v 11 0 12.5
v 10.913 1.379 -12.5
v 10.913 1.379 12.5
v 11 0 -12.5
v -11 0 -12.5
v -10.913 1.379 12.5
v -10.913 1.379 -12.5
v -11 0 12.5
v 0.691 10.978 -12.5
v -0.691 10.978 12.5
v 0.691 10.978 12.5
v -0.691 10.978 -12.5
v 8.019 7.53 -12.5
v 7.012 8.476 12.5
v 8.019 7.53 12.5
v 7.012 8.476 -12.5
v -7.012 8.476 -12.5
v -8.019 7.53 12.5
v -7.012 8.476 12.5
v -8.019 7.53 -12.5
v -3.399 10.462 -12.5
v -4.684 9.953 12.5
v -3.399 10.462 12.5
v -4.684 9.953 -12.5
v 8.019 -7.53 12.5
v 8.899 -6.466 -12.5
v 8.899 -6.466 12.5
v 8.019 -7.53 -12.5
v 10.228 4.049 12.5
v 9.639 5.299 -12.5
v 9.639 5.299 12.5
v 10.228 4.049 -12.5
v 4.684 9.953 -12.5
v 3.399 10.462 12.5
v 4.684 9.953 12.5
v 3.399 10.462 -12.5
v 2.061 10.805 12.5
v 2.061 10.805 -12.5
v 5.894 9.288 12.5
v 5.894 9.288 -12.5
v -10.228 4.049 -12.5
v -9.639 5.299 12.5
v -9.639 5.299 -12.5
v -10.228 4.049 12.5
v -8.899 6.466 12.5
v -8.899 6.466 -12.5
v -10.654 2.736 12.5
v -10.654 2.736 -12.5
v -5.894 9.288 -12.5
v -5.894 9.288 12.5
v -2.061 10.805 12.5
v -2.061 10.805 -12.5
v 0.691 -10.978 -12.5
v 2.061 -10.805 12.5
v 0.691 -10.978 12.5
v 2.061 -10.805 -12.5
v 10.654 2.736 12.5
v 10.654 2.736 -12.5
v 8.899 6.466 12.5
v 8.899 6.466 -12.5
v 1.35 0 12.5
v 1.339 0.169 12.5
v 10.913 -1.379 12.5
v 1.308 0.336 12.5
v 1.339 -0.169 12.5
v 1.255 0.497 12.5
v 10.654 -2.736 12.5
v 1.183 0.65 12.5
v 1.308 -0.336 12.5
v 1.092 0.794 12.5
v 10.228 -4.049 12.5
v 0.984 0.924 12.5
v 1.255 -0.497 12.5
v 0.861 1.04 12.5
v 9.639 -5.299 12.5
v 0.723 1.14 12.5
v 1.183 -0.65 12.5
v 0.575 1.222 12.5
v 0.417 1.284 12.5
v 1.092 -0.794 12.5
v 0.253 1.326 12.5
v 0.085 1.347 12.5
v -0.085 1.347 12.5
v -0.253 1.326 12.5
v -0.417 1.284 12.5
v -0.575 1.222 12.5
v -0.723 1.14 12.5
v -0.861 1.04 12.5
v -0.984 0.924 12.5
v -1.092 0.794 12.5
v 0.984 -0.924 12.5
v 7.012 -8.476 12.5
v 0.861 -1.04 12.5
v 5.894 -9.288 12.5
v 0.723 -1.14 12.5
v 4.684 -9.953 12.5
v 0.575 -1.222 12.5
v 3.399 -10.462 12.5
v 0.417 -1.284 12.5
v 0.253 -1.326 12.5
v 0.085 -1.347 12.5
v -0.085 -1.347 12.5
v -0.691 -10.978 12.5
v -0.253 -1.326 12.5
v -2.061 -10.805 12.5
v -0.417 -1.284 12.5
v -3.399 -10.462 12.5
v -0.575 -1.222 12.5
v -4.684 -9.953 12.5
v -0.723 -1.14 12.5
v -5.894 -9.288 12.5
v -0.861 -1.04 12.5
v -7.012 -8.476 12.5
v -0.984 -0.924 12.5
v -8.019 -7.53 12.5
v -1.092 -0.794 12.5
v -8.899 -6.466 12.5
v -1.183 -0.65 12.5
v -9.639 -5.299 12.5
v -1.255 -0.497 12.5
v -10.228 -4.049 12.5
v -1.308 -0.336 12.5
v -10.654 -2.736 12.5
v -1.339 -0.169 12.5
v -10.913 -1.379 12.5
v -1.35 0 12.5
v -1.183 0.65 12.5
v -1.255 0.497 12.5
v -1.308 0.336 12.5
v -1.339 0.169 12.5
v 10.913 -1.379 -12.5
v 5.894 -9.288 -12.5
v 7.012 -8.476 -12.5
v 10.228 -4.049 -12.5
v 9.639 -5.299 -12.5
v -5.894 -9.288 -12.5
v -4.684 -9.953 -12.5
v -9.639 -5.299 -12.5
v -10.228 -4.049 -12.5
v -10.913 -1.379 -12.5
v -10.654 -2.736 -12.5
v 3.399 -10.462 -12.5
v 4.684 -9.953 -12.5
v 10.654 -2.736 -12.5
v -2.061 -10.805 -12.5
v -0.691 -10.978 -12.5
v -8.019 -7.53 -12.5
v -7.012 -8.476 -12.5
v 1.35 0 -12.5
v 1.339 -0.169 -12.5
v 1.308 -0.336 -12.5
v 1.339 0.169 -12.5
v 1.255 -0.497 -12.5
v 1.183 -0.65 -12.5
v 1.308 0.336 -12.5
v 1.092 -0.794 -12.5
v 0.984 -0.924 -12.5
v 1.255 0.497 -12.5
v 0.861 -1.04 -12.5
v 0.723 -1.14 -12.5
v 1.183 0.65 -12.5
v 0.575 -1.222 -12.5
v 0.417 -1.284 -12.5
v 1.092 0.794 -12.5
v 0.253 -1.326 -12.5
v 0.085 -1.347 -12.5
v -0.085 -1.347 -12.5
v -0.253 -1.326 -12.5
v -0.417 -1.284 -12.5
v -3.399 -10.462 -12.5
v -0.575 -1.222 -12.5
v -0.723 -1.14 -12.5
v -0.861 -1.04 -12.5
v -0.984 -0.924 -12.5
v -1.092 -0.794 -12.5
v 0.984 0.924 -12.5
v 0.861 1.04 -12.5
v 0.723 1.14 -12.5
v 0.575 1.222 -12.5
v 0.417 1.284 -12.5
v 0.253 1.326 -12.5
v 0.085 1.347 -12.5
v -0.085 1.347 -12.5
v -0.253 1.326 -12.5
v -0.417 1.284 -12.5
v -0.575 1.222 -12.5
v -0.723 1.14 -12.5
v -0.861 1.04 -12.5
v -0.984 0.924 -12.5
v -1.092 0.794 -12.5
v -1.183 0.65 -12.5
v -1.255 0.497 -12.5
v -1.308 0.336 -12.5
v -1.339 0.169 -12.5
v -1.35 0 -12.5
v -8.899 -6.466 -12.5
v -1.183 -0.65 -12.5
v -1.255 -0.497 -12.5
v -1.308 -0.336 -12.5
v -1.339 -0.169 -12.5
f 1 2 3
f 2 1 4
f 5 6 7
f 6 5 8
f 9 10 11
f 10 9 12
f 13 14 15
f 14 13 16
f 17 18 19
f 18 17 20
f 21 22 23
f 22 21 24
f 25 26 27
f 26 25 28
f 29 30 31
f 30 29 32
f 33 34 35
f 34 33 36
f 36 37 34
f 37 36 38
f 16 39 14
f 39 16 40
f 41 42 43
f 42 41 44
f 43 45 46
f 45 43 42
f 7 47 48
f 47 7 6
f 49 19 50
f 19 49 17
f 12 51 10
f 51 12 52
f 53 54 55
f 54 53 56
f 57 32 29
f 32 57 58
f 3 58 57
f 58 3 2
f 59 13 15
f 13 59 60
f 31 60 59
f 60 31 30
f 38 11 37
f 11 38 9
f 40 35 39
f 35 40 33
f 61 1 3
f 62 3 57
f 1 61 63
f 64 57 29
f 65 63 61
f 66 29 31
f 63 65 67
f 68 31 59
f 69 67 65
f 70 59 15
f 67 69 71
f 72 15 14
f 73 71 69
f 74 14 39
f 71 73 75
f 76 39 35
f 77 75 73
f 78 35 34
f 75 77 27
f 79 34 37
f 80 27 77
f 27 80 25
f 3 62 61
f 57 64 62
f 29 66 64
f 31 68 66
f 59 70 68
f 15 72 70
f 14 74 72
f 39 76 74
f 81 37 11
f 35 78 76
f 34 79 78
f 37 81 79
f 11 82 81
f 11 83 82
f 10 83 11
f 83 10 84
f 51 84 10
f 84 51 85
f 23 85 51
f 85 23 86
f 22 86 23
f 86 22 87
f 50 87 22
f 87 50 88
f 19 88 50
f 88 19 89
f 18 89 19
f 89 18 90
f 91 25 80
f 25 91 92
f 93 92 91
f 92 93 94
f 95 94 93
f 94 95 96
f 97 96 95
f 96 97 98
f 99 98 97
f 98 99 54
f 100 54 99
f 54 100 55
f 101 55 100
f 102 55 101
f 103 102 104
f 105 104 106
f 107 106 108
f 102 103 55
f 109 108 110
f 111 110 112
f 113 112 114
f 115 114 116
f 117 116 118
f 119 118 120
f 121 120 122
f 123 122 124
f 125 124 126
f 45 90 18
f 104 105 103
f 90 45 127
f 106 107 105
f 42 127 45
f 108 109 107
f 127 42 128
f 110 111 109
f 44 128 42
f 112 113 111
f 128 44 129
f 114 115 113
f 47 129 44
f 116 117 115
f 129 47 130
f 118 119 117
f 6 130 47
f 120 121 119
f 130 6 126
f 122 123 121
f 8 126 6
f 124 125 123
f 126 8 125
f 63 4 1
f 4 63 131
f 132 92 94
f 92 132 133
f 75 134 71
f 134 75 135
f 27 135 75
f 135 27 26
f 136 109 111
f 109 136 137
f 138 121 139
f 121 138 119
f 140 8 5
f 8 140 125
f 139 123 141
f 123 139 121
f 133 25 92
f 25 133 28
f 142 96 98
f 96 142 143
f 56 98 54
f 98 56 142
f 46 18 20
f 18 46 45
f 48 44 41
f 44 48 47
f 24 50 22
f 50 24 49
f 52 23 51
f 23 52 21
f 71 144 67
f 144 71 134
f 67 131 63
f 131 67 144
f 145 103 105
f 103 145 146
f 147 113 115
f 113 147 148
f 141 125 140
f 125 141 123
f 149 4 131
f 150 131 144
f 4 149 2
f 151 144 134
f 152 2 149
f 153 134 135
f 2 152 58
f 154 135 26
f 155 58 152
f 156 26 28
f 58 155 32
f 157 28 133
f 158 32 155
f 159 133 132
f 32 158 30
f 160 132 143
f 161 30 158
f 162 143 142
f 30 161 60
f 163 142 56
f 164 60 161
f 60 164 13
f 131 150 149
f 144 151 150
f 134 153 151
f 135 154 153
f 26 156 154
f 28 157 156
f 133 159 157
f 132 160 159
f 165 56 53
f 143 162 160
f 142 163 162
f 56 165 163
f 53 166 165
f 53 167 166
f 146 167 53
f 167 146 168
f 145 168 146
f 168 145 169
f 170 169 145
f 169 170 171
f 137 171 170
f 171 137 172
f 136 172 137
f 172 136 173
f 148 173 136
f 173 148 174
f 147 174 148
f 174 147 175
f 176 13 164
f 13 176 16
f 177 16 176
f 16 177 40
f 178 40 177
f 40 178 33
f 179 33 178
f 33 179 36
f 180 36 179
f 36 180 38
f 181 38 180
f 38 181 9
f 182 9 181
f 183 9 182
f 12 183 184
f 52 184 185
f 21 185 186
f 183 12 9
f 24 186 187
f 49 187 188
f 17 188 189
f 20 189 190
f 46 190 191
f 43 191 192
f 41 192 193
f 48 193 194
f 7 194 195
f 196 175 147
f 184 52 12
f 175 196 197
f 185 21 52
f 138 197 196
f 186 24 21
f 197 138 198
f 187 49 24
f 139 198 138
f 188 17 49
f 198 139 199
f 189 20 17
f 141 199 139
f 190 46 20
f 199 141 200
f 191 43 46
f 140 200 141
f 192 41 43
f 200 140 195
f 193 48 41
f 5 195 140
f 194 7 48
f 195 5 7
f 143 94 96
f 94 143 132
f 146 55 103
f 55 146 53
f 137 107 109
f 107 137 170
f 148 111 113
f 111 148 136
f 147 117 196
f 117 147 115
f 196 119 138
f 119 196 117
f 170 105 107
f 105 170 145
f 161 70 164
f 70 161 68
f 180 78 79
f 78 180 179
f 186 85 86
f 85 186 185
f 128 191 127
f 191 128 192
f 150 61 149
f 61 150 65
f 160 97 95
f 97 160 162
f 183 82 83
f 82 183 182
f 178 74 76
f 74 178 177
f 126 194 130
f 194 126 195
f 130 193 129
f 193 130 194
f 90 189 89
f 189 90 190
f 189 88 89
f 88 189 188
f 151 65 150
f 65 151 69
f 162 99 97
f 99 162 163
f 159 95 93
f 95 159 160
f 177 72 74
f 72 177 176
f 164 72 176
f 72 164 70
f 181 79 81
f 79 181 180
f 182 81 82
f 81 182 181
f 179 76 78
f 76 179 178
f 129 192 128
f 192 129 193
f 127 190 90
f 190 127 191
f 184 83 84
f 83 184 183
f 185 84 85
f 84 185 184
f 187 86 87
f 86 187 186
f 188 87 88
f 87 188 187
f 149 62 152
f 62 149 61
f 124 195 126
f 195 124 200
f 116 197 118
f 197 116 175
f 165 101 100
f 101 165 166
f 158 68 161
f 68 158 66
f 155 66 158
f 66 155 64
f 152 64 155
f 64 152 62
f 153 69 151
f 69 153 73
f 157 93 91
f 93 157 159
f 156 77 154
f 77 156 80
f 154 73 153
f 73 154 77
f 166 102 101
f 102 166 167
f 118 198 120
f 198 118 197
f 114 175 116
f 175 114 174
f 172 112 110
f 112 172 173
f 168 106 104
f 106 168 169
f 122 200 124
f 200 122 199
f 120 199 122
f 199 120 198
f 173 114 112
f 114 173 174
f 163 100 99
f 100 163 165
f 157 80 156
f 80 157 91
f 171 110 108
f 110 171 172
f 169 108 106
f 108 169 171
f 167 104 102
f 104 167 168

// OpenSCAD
$fn = 50;


difference() {
	union() {
		translate(v = [0, 0, -12.5000000000]) {
			cylinder(h = 25, r = 11.0000000000);
		}
	}
	union() {
		translate(v = [0, 0, -100.0000000000]) {
			cylinder(h = 200, r = 1.3500000000);
		}
	}
}
